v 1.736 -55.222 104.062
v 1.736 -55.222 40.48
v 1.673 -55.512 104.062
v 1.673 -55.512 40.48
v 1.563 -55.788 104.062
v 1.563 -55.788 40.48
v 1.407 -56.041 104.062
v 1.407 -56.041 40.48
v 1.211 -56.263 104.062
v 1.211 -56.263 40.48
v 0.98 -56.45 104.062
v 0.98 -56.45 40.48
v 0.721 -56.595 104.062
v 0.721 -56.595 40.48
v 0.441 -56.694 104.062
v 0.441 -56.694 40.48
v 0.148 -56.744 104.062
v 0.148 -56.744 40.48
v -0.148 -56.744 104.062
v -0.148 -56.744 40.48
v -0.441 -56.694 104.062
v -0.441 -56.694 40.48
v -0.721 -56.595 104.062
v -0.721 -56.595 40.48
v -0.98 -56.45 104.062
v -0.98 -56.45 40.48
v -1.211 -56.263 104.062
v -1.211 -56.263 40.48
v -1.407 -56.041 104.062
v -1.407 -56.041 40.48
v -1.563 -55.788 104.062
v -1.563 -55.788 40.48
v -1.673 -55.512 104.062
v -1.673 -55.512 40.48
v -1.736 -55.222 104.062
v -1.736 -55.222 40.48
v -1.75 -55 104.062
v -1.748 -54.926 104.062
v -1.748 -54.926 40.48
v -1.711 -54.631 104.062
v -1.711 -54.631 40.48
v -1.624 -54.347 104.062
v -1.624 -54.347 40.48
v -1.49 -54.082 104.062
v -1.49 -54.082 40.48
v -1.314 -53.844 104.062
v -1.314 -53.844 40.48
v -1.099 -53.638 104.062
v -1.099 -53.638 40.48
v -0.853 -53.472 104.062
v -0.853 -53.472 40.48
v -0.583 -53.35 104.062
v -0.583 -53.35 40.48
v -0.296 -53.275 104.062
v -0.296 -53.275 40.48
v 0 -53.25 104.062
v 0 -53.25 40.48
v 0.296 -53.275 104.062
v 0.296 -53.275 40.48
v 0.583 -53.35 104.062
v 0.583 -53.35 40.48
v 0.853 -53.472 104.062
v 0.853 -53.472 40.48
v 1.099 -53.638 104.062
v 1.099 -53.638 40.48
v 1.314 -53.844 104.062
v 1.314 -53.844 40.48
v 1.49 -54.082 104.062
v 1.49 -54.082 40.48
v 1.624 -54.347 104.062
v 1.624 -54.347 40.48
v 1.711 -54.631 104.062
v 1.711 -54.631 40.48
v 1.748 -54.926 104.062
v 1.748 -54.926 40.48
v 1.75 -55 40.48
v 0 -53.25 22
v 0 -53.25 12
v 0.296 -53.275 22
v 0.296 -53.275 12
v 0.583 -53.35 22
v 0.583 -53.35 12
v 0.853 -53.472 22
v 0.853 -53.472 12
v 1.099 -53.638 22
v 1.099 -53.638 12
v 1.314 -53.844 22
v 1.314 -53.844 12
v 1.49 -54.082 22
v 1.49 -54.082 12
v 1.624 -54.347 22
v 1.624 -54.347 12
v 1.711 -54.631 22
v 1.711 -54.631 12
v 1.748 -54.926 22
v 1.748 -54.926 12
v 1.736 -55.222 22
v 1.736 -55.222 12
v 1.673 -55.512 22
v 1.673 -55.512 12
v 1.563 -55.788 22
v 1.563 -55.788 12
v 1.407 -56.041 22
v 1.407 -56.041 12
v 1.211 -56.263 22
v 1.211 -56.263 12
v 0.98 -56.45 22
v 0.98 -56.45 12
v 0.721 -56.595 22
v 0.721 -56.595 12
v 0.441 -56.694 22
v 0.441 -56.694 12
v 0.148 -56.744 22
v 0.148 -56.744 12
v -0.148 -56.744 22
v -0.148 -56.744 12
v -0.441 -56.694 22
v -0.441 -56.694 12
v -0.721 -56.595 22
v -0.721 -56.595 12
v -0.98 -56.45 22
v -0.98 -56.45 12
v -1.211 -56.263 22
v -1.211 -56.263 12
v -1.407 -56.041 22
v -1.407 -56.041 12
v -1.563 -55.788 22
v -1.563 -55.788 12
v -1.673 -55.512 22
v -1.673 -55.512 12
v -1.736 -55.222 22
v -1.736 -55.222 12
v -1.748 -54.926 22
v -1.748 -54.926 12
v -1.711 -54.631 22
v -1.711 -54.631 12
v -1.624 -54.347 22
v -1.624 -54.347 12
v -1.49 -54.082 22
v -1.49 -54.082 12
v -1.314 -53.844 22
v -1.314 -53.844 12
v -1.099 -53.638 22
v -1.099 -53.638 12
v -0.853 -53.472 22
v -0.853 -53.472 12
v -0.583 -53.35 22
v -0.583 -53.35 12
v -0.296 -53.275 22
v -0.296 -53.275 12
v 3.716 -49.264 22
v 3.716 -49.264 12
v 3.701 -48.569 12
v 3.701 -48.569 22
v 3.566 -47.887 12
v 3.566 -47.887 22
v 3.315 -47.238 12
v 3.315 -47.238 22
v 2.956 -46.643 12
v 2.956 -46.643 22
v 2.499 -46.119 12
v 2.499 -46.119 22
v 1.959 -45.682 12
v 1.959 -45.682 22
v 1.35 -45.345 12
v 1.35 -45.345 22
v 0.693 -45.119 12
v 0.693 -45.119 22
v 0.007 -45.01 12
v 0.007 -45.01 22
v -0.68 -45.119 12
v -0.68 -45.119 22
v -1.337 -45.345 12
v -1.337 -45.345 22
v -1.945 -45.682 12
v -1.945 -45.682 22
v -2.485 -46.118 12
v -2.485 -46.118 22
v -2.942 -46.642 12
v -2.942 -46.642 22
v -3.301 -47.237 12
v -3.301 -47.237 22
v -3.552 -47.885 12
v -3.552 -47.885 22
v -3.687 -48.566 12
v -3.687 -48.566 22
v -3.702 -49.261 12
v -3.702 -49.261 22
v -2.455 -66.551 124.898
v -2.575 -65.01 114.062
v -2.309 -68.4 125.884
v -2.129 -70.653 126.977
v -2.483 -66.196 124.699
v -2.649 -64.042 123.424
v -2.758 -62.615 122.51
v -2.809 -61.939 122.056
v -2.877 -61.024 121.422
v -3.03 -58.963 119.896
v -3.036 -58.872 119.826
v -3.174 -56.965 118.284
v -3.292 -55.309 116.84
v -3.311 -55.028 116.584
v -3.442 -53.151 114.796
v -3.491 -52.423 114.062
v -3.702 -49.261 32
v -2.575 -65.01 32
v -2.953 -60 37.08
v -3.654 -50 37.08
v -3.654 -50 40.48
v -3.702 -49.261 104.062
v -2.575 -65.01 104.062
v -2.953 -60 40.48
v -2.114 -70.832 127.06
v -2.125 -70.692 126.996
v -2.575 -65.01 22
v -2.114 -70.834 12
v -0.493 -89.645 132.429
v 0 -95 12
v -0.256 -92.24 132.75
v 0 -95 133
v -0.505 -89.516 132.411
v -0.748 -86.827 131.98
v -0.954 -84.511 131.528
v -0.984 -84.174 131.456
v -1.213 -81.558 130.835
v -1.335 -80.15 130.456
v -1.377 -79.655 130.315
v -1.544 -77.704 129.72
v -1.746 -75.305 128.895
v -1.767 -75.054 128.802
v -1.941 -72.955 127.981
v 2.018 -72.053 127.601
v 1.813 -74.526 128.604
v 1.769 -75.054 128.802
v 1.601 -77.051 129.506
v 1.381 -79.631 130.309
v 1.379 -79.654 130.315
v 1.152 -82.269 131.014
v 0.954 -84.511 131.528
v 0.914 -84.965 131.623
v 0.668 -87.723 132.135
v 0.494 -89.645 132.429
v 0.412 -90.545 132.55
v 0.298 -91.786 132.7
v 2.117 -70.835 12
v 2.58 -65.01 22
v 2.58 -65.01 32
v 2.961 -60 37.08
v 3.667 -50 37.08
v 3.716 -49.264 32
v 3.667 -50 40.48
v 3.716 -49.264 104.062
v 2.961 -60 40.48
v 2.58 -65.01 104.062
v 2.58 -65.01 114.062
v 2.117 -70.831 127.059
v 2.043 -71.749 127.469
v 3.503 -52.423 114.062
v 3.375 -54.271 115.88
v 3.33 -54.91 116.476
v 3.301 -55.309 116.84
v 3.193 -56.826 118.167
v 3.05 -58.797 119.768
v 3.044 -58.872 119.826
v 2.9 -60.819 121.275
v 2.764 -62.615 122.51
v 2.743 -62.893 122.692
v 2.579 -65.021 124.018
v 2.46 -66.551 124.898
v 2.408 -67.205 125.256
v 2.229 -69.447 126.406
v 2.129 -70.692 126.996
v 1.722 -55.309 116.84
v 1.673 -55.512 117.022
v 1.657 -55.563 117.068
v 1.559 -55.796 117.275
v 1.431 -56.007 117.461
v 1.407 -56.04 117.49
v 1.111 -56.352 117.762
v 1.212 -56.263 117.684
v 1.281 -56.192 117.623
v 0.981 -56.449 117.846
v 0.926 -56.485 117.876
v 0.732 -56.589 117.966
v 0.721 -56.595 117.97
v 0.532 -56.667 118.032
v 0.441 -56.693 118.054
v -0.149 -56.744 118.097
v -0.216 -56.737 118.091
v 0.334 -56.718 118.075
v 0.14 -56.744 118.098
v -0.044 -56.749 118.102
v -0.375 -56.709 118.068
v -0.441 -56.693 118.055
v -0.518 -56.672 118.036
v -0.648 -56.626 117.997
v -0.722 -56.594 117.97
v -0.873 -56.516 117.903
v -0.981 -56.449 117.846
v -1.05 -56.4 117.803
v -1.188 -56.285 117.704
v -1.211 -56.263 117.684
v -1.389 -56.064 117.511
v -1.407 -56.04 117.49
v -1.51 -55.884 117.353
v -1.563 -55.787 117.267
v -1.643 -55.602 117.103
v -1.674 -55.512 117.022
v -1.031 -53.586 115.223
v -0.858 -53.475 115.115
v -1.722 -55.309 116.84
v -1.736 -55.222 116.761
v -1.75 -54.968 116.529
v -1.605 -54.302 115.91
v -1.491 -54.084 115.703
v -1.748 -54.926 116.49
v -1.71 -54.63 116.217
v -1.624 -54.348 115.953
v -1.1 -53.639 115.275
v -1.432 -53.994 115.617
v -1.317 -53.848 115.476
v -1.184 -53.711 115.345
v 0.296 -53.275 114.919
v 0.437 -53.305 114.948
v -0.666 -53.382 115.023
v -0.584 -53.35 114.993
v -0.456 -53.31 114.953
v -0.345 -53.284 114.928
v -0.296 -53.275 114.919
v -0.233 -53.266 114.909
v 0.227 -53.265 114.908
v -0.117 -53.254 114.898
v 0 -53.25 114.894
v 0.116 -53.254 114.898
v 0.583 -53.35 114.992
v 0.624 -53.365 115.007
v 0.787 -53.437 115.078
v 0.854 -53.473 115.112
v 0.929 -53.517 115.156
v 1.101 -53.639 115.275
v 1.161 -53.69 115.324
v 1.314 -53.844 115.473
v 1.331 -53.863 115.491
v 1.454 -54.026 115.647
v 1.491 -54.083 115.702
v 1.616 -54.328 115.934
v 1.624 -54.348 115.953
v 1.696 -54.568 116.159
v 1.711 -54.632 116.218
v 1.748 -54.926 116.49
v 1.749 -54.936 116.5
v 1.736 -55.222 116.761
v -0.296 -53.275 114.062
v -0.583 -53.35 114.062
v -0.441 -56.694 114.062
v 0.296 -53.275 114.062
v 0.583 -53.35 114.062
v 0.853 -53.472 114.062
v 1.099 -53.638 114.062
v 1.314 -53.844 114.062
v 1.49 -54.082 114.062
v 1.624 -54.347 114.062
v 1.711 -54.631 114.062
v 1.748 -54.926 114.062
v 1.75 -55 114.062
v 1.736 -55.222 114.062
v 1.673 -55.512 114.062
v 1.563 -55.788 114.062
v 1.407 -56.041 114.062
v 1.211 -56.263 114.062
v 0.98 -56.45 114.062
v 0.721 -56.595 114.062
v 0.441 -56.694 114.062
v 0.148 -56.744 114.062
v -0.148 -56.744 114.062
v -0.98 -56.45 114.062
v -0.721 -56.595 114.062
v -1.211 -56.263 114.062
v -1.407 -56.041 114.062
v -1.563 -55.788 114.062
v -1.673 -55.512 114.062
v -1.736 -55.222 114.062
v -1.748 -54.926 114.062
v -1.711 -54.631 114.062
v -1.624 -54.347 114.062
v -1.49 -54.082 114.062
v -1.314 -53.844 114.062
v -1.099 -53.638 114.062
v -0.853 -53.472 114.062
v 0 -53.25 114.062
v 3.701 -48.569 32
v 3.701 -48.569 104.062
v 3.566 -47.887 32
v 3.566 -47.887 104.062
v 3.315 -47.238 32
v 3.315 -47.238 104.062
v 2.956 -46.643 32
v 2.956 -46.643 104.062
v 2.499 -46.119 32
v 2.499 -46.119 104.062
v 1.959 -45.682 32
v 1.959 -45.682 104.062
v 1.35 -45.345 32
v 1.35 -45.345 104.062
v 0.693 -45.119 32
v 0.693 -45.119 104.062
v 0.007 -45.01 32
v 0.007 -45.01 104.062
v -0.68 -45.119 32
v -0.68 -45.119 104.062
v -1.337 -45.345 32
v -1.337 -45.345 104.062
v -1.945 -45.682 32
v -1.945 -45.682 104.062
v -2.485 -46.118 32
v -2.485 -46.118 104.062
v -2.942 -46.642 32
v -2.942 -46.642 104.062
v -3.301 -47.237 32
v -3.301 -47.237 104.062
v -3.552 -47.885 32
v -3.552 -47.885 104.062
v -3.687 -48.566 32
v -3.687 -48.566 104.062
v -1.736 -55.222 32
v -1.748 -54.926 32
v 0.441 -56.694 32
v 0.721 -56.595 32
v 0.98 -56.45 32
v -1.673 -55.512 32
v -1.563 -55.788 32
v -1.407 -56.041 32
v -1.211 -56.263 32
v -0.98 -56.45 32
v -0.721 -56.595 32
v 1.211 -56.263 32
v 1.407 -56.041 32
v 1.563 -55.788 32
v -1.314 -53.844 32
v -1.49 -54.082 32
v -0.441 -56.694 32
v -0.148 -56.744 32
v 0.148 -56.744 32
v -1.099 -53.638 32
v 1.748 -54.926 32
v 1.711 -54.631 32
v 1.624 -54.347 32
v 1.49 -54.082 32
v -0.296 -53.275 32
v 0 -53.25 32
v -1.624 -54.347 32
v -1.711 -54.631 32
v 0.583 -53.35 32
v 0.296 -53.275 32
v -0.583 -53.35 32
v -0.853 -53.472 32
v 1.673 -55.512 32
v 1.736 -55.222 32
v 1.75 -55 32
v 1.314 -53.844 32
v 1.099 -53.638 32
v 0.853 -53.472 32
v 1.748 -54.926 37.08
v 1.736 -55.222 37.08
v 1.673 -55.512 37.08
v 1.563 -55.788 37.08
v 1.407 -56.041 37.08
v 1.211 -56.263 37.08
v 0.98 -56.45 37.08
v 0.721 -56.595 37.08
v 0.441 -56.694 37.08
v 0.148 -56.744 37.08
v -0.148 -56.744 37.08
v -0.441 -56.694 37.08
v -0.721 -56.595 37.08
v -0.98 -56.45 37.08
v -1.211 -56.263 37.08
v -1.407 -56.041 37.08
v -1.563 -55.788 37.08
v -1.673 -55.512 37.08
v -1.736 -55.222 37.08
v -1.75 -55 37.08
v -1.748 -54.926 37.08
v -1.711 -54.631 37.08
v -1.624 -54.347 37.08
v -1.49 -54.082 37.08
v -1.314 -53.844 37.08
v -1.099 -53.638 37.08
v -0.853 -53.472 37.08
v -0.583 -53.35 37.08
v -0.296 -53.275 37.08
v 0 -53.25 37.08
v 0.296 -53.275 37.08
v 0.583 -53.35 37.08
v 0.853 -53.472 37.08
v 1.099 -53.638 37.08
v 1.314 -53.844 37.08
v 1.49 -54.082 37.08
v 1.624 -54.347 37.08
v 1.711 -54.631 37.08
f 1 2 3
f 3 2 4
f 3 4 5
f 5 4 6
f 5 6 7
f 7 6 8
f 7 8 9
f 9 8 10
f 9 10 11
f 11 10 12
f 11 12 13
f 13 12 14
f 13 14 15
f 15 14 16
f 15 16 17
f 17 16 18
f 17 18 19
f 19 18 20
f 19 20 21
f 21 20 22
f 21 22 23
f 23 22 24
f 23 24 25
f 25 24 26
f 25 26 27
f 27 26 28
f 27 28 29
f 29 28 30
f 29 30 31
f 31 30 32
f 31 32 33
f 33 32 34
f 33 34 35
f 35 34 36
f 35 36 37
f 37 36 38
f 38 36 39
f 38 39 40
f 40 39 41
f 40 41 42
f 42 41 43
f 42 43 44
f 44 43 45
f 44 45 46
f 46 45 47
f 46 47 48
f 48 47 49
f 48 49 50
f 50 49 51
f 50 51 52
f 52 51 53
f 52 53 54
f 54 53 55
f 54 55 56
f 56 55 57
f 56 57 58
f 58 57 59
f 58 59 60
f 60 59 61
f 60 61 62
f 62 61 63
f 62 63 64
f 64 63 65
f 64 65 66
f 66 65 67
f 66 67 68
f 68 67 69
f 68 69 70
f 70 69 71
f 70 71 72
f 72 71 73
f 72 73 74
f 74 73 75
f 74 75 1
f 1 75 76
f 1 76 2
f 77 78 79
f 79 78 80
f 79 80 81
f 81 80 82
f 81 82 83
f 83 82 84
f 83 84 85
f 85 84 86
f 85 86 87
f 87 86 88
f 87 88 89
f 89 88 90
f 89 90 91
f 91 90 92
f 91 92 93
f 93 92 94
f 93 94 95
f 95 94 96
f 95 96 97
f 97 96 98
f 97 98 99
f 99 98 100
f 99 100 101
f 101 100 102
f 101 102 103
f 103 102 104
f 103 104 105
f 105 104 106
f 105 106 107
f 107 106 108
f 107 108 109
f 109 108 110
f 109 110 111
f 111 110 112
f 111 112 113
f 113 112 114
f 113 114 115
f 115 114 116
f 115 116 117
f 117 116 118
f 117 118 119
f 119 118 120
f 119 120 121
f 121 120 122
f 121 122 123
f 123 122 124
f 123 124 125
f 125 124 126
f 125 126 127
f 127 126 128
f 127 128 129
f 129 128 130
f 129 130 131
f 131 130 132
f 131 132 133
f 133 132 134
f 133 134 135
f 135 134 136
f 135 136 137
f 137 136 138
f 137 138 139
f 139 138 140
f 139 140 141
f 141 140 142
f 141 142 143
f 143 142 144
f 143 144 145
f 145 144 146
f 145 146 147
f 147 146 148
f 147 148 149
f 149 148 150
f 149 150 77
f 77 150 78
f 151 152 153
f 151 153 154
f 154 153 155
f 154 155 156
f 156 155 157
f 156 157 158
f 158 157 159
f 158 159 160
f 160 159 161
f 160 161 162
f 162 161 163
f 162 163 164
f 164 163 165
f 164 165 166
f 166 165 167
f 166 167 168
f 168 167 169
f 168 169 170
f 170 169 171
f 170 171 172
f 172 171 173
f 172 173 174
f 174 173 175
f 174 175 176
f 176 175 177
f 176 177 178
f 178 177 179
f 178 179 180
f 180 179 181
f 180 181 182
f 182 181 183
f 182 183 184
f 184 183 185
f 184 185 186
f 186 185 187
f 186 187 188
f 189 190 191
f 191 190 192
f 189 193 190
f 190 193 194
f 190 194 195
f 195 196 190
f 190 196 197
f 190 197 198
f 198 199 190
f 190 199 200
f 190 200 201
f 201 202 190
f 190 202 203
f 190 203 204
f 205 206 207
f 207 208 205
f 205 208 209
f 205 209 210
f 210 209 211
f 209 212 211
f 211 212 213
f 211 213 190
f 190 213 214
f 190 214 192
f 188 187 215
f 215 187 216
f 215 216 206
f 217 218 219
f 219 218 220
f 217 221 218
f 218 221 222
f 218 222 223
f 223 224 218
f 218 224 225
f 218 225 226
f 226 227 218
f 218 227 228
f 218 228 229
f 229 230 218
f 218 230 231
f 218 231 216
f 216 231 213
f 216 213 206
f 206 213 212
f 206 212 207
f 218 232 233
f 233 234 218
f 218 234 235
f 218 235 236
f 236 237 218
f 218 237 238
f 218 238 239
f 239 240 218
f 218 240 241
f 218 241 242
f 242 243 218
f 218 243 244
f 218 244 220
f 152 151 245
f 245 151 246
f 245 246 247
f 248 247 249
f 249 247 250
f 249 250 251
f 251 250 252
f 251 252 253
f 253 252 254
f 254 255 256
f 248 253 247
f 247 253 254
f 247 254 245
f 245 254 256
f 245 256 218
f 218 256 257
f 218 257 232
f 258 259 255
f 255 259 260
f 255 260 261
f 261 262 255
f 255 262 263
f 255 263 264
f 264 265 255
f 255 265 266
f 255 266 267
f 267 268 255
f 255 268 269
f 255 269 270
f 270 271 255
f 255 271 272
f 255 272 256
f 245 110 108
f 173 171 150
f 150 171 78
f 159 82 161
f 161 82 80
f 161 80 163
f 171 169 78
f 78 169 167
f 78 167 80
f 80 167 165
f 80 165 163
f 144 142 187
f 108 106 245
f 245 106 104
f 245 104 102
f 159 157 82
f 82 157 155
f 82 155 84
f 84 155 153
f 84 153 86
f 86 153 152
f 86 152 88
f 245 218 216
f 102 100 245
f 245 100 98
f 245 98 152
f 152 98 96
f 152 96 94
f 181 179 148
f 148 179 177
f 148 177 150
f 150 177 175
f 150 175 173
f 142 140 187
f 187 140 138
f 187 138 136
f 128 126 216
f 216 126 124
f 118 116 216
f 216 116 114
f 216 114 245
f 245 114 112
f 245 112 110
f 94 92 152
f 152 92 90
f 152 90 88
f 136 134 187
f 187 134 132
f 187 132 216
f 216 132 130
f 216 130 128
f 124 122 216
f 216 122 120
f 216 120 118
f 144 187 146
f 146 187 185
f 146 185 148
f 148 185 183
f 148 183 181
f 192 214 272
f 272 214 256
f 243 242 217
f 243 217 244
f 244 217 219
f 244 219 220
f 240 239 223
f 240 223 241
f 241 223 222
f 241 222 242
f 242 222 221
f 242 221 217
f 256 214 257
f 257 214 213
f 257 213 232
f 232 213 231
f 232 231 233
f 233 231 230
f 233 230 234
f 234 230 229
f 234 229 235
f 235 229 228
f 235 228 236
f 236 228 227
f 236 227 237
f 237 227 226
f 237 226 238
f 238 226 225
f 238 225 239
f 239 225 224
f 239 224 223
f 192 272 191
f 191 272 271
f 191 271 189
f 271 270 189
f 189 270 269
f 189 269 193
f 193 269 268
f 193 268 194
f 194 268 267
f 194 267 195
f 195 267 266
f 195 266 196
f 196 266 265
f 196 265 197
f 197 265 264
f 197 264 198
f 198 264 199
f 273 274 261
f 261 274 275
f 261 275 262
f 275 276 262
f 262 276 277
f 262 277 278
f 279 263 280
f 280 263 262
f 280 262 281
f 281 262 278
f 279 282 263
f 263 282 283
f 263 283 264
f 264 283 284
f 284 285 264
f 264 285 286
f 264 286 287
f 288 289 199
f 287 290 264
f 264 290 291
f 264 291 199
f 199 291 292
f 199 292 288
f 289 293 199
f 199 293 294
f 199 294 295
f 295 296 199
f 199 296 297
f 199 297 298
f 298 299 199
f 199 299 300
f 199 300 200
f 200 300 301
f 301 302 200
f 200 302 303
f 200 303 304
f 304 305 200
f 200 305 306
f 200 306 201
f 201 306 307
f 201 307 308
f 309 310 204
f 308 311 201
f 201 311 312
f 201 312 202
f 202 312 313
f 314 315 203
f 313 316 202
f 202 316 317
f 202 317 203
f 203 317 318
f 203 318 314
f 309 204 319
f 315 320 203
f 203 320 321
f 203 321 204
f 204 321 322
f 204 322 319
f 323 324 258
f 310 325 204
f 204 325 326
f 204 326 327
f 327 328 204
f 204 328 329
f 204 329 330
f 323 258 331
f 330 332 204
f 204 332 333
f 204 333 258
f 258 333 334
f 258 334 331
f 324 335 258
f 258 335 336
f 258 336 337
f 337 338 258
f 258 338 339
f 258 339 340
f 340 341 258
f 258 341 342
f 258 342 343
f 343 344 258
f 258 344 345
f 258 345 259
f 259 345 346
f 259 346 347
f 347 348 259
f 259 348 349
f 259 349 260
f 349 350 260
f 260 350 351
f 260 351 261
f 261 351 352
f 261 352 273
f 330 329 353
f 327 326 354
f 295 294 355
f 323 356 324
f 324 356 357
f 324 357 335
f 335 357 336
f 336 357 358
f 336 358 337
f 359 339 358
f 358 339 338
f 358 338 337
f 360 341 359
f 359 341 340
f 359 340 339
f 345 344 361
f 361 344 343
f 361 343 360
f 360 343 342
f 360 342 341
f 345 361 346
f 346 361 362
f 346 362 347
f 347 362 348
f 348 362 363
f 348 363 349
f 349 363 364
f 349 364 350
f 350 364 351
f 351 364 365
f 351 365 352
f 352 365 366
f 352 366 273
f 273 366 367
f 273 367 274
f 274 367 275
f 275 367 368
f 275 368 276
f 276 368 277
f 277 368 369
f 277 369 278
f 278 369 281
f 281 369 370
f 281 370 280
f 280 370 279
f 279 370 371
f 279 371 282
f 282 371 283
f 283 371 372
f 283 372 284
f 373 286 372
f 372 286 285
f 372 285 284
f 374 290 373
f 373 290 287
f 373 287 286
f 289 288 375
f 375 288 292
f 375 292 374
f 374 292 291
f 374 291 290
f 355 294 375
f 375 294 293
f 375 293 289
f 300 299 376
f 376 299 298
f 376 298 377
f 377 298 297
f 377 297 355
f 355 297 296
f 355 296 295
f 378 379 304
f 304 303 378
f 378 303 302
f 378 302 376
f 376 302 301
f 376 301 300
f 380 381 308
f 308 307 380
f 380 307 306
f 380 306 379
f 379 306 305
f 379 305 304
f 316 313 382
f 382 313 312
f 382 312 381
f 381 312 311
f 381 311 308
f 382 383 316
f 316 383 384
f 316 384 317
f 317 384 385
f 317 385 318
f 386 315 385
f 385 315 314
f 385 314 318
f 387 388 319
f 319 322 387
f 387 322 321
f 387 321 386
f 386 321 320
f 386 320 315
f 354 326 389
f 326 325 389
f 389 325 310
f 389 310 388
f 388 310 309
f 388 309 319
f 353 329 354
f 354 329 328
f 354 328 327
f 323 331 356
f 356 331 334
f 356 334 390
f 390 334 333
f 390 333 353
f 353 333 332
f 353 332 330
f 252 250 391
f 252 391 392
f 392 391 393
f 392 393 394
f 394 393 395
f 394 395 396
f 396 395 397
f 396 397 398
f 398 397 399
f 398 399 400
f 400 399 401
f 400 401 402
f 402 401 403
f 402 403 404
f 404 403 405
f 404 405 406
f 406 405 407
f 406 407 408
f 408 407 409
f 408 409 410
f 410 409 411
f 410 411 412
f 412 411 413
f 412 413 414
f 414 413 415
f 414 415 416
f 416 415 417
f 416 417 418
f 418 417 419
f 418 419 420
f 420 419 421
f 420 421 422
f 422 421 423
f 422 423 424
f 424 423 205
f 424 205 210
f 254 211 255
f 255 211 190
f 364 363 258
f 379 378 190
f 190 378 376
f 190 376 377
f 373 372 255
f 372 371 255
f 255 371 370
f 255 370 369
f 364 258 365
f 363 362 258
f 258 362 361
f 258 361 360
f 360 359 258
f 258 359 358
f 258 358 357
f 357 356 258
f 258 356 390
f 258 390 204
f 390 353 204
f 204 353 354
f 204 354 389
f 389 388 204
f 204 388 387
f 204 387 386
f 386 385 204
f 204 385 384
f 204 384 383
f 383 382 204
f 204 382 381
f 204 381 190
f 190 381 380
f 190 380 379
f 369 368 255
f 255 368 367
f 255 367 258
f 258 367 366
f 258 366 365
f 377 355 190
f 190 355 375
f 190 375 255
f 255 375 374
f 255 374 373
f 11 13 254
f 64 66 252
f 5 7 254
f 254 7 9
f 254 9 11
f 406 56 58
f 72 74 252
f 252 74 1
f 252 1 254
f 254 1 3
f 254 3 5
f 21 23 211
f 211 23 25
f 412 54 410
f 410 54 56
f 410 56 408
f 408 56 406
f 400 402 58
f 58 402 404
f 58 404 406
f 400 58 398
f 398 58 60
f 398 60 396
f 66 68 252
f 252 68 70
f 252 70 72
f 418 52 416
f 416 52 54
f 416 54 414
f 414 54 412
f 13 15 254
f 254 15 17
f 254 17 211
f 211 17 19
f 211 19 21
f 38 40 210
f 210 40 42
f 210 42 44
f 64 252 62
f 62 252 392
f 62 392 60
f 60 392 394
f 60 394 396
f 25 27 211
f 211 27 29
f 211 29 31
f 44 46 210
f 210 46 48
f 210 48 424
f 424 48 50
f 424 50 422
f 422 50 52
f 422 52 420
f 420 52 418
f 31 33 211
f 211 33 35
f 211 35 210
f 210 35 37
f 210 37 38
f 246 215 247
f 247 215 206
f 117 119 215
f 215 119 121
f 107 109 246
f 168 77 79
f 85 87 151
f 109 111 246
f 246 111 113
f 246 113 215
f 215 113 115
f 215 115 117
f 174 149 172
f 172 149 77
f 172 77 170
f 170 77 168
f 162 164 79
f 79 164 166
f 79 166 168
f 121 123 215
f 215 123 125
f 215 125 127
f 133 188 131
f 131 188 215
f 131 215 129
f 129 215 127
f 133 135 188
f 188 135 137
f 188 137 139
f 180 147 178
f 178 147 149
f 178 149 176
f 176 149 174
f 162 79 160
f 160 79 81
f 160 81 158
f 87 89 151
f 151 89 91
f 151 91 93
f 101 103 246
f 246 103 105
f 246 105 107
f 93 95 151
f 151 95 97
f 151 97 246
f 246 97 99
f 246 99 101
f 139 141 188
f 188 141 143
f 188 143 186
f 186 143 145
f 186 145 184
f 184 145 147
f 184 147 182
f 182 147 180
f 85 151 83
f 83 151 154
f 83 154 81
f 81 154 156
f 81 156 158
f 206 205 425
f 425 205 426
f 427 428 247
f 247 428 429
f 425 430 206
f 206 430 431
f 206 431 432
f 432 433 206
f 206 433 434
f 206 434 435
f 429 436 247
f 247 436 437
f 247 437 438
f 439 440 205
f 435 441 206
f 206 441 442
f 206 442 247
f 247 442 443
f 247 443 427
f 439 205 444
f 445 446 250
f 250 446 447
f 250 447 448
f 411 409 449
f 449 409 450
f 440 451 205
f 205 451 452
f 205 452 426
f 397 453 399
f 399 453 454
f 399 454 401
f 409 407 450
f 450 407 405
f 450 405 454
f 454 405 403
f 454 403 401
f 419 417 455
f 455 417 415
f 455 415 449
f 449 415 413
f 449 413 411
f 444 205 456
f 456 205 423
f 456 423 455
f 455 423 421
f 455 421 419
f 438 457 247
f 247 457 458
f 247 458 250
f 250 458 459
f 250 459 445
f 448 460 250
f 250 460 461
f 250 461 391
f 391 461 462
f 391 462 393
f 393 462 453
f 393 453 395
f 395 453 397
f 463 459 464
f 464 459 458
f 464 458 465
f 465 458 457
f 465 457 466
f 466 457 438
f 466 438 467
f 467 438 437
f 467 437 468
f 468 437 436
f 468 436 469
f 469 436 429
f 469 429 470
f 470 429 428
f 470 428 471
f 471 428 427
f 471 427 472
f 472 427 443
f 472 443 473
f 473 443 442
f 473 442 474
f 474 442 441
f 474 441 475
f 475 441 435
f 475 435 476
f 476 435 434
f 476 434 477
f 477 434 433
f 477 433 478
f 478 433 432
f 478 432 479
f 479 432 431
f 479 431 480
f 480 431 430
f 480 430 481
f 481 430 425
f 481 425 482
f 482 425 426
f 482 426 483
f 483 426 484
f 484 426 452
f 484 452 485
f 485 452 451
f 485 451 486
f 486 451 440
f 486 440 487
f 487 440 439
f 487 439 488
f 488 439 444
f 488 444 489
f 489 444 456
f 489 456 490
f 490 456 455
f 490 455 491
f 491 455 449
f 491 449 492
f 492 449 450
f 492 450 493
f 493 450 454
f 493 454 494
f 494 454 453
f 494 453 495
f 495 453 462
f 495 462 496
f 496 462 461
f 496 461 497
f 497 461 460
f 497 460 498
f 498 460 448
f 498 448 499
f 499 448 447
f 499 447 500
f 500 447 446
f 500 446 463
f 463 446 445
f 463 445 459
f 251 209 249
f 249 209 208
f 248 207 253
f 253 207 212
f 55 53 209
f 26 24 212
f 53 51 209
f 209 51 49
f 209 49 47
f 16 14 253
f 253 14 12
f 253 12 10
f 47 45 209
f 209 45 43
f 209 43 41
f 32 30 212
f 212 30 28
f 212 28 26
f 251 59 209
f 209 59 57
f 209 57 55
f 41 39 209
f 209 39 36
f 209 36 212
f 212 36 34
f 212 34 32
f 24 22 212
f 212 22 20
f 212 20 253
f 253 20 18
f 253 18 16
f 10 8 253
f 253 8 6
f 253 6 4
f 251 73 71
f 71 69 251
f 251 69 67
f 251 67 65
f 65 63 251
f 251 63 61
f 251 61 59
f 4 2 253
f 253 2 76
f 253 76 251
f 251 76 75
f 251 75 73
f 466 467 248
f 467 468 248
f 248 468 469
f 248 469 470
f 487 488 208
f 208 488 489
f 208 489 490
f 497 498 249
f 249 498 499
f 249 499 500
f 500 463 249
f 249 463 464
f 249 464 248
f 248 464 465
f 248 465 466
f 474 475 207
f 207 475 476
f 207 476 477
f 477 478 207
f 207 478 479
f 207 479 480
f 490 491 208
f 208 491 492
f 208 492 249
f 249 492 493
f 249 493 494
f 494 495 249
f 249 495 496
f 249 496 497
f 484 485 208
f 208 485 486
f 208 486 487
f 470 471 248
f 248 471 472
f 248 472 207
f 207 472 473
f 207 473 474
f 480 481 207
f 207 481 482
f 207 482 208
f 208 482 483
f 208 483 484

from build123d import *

# Parameters (mm, degrees)
SKETCH_2_R               = 3.25
EXTRUDE_1_DEPTH          = 150
CUT_EXTRUDE_START        = -5.375917787
CUT_EXTRUDE_1_DEPTH      = 10.820362331
CUT_EXTRUDE_2_DEPTH      = 178.636263262
CUT_EXTRUDE_2_DEPTH_BACK = 178.636263262
SKETCH_5_R               = 1.75
CUT_EXTRUDE_3_DEPTH      = 154.889291752
FILLET_1_R               = 4
CUT_EXTRUDE_4_DEPTH      = 164.486604715
CUT_EXTRUDE_4_DEPTH_BACK = 164.486604715
SKETCH_8_W               = 10
SKETCH_8_H               = 20
CUT_EXTRUDE_5_DEPTH      = 164.486604715
CUT_EXTRUDE_5_DEPTH_BACK = 164.486604715
SKETCH_9_W               = 3.4
SKETCH_9_H               = 10


# Read off the part's stored shape, not the designer's step: 除料-伸長1
with BuildPart() as part:
    # 草圖2 → 填料-伸長1 (new body)
    with BuildSketch(Plane.XY):
        with BuildLine():
            add(Edge.make_bspline(
                [(-4.885261194, 10), (0, 40), (5, 10)],
                knots=[0, 0, 0, 1, 1, 1], degree=2))
            add(Edge.make_bspline(
                [(5, 10), (7, -20), (0, -95)],
                knots=[0, 0, 0, 1, 1, 1], degree=2))
            add(Edge.make_bspline(
                [(-4.885261194, 10), (-7, -20), (0, -95)],
                knots=[0, 0, 0, 1, 1, 1], degree=2))
        make_face()
        with Locations((0, 5)):
            Circle(SKETCH_2_R, mode=Mode.SUBTRACT)
        with Locations((0, -15)):
            Circle(SKETCH_2_R, mode=Mode.SUBTRACT)
    extrude(amount=EXTRUDE_1_DEPTH)

    # 除料-伸長1 outline → 除料-伸長1 (cut)
    with BuildSketch(Plane(origin=(0, 0, 0), x_dir=(0, 0, -1), z_dir=(1, 0, 0)).offset(CUT_EXTRUDE_START)):
        with BuildLine():
            Line((-150, 25), (-150, -80.493578612))
            add(Edge.make_bspline(
                [(-45.078048967, 25), (-92.099367892, 5.715924734), (-132.413995221, -32.343019704), (-150, -80.493578612)],
                knots=[0, 0, 0, 0, 1, 1, 1, 1], degree=3))
            Line((-45.078048967, 25), (-150, 25))
        make_face()
    extrude(amount=CUT_EXTRUDE_1_DEPTH, mode=Mode.SUBTRACT)

    # 草圖4 → 除料-伸長2 (cut, two sides: drawn at the far end of the back side and taken through both)
    with BuildSketch(Plane(origin=(0, 0, 0), x_dir=(0, 0, -1), z_dir=(1, 0, 0)).offset(-CUT_EXTRUDE_2_DEPTH_BACK)):
        with BuildLine():
            Line((-12, -95), (-12, -45))
            Line((-12, -45), (-105.048136882, -45))
            add(Edge.make_bspline(
                [(-105.048136882, -45), (-130.619727744, -62.828669631), (-133, -95)],
                knots=[0, 0, 0, 1, 1, 1], degree=2))
            Line((-133, -95), (-202.799866115, -110.736264896))
            Line((-202.799866115, -110.736264896), (-206.293444292, 4.551814945))
            Line((-206.293444292, 4.551814945), (-122.032968562, 45.937279504))
            Line((-122.032968562, 45.937279504), (-2.049657297, 49.573137421))
            Line((-2.049657297, 49.573137421), (77.223861612, 25.244547225))
            Line((77.223861612, 25.244547225), (93.885542148, -58.870065807))
            Line((93.885542148, -58.870065807), (27.807345311, -110.736264896))
            Line((27.807345311, -110.736264896), (-12, -95))
        make_face()
    extrude(amount=CUT_EXTRUDE_2_DEPTH + CUT_EXTRUDE_2_DEPTH_BACK, mode=Mode.SUBTRACT)

    # 草圖5 → 除料-伸長3 (cut, through all)
    with BuildSketch(Plane(origin=(0, 0, 12), x_dir=(-1, 0, 0), z_dir=(0, 0, -1))):
        with Locations(Location((0, -55, 0), (0, 0, 90))):
            Circle(SKETCH_5_R)
    extrude(amount=-CUT_EXTRUDE_3_DEPTH, mode=Mode.SUBTRACT)

    # 圓角1
    # the kernel refuses this fillet: 4 mm, written as the material it takes off along each edge
    with BuildSketch(Plane(origin=(-3.97305147, -45, 115.722141015), x_dir=(0.06337202796258917, -0.9979899729315466, 0), z_dir=(0, 0, -1))) as fillet_1_piece_1:
        with BuildLine():
            CenterArc((4.262054506, -3.99999288), FILLET_1_R, 89.891895008, 93.74148946)
            Line((0.270094614, -4.253480992), (0, 0))
            ThreePointArc((0, 0), (2.134800854, 0.002041927), (4.269601653, 0))
        make_face()
    extrude(amount=114.396145149, mode=Mode.SUBTRACT)
    with BuildSketch(Plane(origin=(3.989244513, -45, 115.729130337), x_dir=(-0.06406540579517839, -0.9979457018196427, 0), z_dir=(0, 0, -1))) as fillet_1_piece_2:
        with BuildLine():
            CenterArc((4.265022816, 3.999993202), FILLET_1_R, 176.326807013, 93.77882592)
            Line((0.273240009, 4.256254825), (0, 0))
            ThreePointArc((0, 0), (2.136198717, -0.001996553), (4.272397382, 0))
        make_face()
    extrude(amount=114.410123792, mode=Mode.SUBTRACT)

    # 草圖8 → 除料-伸長4 (cut, two sides: drawn at the far end of the back side and taken through both)
    with BuildSketch(Plane(origin=(0, 0, 0), x_dir=(0, 0, -1), z_dir=(1, 0, 0)).offset(-CUT_EXTRUDE_4_DEPTH_BACK)):
        with Locations((-27, -55.009980051)):
            Rectangle(SKETCH_8_W, SKETCH_8_H)
        with Locations((-109.062447802, -55.009980051)):
            Rectangle(SKETCH_8_W, SKETCH_8_H)
    extrude(amount=CUT_EXTRUDE_4_DEPTH + CUT_EXTRUDE_4_DEPTH_BACK, mode=Mode.SUBTRACT)

    # 草圖9 → 除料-伸長5 (cut, two sides: drawn at the far end of the back side and taken through both)
    with BuildSketch(Plane(origin=(0, 0, 0), x_dir=(0, 0, -1), z_dir=(1, 0, 0)).offset(-CUT_EXTRUDE_5_DEPTH_BACK)):
        with Locations((-38.78, -55)):
            Rectangle(SKETCH_9_W, SKETCH_9_H)
    extrude(amount=CUT_EXTRUDE_5_DEPTH + CUT_EXTRUDE_5_DEPTH_BACK, mode=Mode.SUBTRACT)


solid = part.part
